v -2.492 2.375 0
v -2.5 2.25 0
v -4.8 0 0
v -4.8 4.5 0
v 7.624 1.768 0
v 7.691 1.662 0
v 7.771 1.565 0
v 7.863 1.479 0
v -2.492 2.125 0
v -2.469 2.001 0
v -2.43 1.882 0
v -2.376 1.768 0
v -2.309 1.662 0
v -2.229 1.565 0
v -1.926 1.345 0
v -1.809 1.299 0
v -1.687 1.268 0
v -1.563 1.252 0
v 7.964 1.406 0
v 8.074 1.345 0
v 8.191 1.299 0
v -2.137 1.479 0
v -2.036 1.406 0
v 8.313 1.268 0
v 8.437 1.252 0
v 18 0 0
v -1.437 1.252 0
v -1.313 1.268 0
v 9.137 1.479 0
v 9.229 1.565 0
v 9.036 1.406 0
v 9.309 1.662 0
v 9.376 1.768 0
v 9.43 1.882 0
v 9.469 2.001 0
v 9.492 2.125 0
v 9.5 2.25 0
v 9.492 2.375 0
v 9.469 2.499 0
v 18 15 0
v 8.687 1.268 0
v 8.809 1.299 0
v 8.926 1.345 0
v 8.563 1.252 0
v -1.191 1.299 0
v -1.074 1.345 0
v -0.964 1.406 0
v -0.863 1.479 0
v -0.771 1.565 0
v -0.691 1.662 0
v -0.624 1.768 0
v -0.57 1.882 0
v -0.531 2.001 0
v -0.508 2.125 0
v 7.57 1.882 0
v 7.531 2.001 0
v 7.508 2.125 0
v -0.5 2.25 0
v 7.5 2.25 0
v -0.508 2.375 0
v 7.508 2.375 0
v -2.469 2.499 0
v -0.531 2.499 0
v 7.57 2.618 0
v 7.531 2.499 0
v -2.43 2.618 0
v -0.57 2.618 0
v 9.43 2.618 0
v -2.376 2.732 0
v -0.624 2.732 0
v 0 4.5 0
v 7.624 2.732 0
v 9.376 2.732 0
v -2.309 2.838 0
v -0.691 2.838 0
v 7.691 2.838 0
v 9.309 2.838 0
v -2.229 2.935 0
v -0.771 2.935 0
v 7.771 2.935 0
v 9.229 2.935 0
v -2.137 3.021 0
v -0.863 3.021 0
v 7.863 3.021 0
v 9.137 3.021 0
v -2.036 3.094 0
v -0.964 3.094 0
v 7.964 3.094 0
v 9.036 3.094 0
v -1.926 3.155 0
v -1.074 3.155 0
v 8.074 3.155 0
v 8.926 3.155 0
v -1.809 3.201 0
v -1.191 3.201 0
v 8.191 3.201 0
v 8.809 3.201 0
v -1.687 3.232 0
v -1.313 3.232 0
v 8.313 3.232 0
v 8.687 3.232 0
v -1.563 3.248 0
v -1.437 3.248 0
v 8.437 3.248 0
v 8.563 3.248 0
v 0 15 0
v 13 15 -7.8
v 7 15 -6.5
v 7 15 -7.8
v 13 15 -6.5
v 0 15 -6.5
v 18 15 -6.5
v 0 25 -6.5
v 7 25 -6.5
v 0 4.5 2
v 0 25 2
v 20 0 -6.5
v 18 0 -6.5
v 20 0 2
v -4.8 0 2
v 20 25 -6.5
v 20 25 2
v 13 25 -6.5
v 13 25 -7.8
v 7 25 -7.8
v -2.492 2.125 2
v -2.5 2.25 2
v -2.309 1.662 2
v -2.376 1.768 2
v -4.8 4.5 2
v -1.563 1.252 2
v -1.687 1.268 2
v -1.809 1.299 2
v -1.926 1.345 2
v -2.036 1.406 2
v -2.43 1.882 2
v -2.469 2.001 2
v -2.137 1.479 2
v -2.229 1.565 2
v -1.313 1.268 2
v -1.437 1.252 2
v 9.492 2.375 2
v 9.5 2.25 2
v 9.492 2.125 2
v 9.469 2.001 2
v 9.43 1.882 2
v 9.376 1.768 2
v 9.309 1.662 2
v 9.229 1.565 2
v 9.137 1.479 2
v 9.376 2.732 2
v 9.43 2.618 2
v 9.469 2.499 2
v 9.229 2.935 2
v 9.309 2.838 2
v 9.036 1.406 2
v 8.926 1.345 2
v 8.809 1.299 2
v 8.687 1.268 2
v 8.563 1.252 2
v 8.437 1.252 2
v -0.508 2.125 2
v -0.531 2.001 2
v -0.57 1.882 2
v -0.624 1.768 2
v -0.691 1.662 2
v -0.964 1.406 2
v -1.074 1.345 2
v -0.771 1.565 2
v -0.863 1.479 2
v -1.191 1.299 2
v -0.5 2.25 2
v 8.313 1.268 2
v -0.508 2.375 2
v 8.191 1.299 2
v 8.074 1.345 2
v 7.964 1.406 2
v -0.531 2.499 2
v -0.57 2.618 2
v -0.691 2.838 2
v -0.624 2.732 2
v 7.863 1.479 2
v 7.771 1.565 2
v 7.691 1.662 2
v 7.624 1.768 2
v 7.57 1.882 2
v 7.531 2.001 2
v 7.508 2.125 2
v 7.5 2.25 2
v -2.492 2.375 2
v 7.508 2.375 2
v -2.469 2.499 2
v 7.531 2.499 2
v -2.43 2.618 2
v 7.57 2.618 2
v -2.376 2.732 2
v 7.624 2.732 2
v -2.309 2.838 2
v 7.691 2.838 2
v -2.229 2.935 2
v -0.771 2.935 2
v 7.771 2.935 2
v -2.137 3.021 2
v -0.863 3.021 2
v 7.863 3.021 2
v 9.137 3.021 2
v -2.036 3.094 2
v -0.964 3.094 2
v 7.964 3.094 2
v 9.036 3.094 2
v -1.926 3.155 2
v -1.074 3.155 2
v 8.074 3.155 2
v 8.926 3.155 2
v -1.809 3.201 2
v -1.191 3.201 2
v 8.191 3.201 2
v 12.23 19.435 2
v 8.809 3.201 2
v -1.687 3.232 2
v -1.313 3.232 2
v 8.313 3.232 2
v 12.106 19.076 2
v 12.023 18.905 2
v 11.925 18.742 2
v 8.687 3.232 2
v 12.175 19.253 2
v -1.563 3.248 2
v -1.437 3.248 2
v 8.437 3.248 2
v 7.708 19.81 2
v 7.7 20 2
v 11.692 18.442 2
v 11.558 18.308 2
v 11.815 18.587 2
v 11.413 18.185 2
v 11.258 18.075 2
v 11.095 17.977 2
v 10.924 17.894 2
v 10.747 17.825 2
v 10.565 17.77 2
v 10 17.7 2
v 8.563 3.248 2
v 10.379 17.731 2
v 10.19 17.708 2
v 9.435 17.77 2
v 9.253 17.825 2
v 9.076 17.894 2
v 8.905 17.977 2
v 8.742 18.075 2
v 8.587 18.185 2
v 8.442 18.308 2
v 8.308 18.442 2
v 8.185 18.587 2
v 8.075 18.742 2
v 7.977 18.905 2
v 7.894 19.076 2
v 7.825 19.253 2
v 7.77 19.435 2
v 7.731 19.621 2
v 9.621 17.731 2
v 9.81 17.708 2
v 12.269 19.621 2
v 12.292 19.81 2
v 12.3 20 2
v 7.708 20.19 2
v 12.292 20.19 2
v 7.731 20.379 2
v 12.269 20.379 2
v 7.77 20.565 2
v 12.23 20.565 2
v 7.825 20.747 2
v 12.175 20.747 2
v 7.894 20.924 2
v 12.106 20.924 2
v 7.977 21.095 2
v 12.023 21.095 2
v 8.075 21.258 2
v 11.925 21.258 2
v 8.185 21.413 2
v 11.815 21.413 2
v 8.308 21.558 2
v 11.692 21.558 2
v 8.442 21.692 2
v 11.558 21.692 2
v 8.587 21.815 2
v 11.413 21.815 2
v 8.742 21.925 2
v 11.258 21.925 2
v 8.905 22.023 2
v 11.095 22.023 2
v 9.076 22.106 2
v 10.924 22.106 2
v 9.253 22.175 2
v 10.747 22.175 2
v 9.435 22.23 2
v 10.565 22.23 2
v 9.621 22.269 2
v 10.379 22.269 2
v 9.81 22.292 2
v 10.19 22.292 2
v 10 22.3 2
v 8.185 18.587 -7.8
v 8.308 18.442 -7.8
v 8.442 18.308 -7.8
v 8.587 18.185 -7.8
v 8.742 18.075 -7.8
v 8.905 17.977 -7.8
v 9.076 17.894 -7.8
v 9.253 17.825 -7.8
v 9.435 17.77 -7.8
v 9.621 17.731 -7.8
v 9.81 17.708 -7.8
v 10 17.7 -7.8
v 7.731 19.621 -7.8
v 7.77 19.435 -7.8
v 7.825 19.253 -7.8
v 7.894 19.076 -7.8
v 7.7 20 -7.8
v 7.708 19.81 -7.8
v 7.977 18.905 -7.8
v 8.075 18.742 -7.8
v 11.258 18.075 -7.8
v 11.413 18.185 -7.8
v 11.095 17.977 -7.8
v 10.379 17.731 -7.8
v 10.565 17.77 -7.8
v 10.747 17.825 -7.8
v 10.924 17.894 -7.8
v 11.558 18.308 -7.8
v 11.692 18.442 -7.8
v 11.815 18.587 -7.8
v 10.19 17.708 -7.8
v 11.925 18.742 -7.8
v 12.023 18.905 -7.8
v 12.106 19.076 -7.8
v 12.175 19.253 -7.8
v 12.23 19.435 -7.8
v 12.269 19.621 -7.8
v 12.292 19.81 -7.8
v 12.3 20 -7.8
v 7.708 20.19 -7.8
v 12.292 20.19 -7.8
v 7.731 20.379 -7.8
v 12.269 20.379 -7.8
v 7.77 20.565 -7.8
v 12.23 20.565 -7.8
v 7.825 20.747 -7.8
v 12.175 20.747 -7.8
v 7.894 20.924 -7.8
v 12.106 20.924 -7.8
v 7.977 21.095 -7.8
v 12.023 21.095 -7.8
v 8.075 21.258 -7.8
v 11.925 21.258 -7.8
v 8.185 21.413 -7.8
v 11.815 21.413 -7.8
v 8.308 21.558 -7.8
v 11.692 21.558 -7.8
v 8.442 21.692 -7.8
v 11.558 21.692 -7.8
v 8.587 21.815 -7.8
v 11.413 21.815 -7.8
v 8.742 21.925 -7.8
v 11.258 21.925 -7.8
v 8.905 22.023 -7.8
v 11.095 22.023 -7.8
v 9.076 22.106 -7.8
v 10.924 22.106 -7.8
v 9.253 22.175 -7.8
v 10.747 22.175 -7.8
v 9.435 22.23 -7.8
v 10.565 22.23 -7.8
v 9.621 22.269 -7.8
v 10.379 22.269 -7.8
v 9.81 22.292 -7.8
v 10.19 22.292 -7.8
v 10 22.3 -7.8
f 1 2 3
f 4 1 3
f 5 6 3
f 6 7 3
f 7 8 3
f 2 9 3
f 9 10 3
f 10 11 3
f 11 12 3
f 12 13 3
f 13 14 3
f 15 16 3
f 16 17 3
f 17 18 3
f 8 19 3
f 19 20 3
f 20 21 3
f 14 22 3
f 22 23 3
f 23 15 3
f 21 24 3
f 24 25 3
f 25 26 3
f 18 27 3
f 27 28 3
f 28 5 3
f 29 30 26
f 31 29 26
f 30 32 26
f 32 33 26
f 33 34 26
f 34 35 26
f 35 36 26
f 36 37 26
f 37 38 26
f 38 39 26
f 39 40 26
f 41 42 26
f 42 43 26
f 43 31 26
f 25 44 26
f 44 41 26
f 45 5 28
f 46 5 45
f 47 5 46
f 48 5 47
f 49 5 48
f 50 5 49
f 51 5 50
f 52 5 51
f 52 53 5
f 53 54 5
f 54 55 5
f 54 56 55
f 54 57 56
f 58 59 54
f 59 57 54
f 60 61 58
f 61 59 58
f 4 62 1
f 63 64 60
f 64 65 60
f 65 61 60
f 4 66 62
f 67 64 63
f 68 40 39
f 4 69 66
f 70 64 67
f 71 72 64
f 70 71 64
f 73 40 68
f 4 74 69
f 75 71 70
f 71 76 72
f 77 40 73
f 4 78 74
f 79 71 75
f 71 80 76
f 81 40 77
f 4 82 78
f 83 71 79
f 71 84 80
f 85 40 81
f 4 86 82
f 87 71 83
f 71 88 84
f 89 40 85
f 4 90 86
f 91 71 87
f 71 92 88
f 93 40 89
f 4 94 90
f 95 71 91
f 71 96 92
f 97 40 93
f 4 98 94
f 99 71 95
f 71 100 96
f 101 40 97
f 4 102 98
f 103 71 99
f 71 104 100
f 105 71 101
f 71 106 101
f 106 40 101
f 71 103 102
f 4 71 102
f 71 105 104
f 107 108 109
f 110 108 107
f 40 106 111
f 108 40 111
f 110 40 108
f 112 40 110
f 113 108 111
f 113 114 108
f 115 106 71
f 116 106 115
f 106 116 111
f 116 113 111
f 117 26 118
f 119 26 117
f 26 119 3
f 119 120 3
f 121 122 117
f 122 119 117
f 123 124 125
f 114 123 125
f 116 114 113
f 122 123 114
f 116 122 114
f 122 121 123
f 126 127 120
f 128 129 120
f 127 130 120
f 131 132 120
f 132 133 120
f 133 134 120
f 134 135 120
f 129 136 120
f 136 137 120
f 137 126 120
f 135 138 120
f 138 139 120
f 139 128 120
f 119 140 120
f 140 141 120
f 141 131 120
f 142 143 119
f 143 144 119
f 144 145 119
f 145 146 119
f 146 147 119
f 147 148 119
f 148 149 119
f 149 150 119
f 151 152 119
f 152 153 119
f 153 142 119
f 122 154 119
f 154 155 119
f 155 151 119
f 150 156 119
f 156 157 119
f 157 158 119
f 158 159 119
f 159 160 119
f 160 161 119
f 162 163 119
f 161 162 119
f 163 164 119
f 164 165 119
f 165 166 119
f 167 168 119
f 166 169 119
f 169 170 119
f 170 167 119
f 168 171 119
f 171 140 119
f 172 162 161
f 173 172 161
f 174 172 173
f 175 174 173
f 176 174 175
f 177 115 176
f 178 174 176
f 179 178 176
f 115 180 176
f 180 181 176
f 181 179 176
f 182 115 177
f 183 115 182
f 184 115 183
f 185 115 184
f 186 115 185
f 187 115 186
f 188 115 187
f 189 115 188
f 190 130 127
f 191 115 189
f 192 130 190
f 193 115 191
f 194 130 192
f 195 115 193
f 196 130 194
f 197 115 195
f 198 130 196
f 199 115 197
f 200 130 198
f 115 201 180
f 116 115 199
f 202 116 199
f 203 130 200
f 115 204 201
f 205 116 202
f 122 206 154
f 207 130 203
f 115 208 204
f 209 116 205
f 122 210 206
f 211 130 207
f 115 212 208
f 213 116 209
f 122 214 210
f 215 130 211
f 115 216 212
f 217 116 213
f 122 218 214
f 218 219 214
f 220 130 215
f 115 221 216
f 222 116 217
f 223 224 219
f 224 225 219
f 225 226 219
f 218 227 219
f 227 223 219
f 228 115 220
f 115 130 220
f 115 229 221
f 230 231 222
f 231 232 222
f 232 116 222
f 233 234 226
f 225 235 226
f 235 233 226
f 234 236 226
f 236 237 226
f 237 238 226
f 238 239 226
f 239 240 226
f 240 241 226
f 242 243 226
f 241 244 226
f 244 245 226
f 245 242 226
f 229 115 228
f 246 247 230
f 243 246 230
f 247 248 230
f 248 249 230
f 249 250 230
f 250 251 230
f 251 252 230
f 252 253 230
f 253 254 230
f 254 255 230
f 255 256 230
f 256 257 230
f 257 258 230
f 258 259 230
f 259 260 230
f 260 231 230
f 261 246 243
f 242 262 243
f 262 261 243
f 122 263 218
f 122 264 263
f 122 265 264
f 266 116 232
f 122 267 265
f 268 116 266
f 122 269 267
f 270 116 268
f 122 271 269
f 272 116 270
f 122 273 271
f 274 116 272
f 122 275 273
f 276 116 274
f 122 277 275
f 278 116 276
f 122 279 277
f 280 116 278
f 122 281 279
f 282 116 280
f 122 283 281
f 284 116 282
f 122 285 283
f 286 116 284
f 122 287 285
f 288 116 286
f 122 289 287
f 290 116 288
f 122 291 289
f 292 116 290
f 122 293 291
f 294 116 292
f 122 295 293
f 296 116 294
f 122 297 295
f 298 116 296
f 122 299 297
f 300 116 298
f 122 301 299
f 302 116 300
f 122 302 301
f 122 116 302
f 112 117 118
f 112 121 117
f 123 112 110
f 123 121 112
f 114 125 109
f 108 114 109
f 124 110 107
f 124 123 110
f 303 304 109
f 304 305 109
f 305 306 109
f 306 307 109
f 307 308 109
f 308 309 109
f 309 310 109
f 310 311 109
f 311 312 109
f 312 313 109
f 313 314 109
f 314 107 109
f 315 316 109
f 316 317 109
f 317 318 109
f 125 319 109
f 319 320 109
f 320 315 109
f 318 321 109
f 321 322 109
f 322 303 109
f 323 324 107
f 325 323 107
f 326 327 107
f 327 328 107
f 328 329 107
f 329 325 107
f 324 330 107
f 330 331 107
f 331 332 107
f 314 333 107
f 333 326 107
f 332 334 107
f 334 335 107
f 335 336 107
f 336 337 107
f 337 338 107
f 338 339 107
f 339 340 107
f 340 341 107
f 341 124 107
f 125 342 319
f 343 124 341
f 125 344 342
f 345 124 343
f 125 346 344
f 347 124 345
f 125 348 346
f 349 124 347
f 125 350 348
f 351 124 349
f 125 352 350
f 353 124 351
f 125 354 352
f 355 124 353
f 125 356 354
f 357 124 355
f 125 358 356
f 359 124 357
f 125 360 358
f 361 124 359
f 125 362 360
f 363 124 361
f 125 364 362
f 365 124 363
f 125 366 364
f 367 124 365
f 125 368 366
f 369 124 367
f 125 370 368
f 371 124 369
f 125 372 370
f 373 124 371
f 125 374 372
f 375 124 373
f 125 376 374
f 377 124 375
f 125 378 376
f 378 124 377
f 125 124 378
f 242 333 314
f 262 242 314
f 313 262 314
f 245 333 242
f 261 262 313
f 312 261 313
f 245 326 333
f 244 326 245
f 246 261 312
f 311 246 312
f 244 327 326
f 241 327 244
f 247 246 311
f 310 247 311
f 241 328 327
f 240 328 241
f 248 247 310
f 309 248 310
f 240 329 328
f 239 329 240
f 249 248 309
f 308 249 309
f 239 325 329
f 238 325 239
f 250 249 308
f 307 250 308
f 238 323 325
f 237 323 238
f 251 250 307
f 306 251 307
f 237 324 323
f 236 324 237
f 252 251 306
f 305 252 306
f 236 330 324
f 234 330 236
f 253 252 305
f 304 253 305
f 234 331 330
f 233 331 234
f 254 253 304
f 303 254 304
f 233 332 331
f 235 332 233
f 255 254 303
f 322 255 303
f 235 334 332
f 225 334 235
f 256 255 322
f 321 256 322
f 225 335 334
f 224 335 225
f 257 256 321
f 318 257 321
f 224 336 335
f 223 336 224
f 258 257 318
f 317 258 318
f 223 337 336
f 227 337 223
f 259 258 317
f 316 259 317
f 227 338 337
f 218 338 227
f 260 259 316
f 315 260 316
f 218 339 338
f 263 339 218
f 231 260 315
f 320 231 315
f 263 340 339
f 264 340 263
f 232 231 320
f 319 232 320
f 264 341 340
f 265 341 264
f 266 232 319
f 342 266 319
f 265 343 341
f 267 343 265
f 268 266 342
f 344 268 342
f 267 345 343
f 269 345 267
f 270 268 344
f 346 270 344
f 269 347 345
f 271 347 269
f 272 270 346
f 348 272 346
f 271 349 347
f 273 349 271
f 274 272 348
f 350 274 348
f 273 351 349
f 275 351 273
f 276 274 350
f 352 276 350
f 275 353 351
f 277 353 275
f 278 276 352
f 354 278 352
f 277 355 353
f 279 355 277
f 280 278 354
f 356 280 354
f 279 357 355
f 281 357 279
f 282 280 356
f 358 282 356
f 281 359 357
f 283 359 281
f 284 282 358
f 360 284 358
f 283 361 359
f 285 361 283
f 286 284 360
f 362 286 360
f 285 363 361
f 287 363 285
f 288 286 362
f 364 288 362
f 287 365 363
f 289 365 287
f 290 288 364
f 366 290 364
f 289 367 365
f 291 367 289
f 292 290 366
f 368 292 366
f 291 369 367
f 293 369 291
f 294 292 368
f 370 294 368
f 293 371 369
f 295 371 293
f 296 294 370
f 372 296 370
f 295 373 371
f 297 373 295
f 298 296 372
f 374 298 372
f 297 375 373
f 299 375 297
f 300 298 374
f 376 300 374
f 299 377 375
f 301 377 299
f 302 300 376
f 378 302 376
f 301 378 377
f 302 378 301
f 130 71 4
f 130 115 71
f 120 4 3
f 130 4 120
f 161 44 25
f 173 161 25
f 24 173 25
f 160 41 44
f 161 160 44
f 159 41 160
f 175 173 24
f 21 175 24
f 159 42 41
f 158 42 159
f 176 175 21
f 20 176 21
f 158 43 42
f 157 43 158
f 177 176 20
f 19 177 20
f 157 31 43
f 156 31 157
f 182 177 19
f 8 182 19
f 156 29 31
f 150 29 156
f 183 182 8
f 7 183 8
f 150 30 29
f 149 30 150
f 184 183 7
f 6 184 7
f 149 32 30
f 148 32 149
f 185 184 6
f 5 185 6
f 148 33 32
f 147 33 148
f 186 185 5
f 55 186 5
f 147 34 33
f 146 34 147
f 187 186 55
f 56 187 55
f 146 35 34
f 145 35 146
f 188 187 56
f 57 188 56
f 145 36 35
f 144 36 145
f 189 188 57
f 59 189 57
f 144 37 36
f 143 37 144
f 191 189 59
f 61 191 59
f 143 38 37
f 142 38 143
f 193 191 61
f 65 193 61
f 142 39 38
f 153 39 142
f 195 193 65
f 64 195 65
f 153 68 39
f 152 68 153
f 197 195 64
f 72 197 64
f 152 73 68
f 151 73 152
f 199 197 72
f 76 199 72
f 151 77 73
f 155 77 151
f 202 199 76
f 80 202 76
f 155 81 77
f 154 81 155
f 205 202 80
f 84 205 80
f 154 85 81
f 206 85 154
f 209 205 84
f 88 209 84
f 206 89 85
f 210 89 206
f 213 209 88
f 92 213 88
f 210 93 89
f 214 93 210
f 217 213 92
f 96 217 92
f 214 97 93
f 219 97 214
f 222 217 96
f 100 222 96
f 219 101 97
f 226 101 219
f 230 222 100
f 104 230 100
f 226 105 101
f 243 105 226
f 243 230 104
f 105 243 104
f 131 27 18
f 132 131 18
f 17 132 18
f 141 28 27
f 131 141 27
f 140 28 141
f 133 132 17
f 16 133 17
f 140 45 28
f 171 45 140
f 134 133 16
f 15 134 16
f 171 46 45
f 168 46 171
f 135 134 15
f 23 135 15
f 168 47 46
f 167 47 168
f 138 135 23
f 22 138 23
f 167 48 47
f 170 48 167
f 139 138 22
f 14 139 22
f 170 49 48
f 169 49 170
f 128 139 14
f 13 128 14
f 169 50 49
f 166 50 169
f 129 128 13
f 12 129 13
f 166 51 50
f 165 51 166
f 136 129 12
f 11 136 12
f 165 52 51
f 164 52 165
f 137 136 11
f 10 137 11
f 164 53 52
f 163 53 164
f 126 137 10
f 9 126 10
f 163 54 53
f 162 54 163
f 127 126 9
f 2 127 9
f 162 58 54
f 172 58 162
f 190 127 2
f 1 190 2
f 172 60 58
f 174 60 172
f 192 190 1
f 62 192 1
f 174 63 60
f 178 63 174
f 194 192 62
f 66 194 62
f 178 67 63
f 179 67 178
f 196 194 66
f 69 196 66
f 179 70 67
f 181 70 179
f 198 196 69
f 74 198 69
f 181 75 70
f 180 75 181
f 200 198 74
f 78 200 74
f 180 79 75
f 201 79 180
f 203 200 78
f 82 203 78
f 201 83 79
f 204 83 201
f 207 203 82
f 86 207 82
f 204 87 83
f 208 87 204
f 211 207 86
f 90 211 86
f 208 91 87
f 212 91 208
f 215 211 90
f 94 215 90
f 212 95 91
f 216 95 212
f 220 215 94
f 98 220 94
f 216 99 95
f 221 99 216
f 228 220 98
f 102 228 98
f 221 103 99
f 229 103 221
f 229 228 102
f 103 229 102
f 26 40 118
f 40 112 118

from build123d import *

# Parameters (mm, degrees)
SKETCH1_W               = 20
SKETCH1_H               = 25
BOSS_EXTRUDE1_DEPTH     = 2
SKETCH4_W               = 20
SKETCH4_H               = 10
BOSS_EXTRUDE3_DEPTH     = 6.5
SKETCH9_W               = 6
SKETCH9_H               = 10
BOSS_EXTRUDE6_DEPTH     = 1.3
CUT_EXTRUDE2_DEPTH      = 34.12476415
CUT_EXTRUDE2_DEPTH_BACK = 34.12476415
SKETCH5_R               = 2.3
SKETCH6_W               = 4.8
SKETCH6_H               = 4.5
BOSS_EXTRUDE4_DEPTH     = 2
SKETCH7_R               = 1
CUT_EXTRUDE3_DEPTH      = 10
SKETCH8_W               = 2
SKETCH8_H               = 15
BOSS_EXTRUDE5_DEPTH     = 6.5


with BuildPart() as part:
    # Sketch1 → Boss-Extrude1 (new body)
    with BuildSketch(Plane.XY):
        with Locations((10, 12.5)):
            Rectangle(SKETCH1_W, SKETCH1_H)
    extrude(amount=BOSS_EXTRUDE1_DEPTH)

    # Sketch4 → Boss-Extrude3 (add)
    with BuildSketch(Plane(origin=(0, 0, 0), x_dir=(-1, 0, 0), z_dir=(0, 0, -1))):
        with Locations((-10, 20)):
            Rectangle(SKETCH4_W, SKETCH4_H)
    extrude(amount=BOSS_EXTRUDE3_DEPTH)

    # Sketch9 → Boss-Extrude6 (add)
    with BuildSketch(Plane(origin=(0, 0, -6.5), x_dir=(-1, 0, 0), z_dir=(0, 0, -1))):
        with Locations((-10, 20)):
            Rectangle(SKETCH9_W, SKETCH9_H)
    extrude(amount=BOSS_EXTRUDE6_DEPTH)

    # Sketch5 → Cut-Extrude2 (cut, two sides: drawn at the far end of the back side and taken through both)
    with BuildSketch(Plane(origin=(0, 0, -6.5), x_dir=(-1, 0, 0), z_dir=(0, 0, -1)).offset(-CUT_EXTRUDE2_DEPTH_BACK)):
        with Locations((-10, 20)):
            Circle(SKETCH5_R)
    extrude(amount=CUT_EXTRUDE2_DEPTH + CUT_EXTRUDE2_DEPTH_BACK, mode=Mode.SUBTRACT)

    # Sketch6 → Boss-Extrude4 (add)
    with BuildSketch(Plane.XY.offset(2)):
        with Locations((-2.4, 2.25)):
            Rectangle(SKETCH6_W, SKETCH6_H)
    extrude(amount=-BOSS_EXTRUDE4_DEPTH)

    # Sketch7 → Cut-Extrude3 (cut)
    with BuildSketch(Plane(origin=(0, 0, 0), x_dir=(-1, 0, 0), z_dir=(0, 0, -1))):
        with Locations((1.5, 2.25)):
            Circle(SKETCH7_R)
        with Locations((-8.5, 2.25)):
            Circle(SKETCH7_R)
    extrude(amount=-CUT_EXTRUDE3_DEPTH, mode=Mode.SUBTRACT)

    # Sketch8 → Boss-Extrude5 (add)
    with BuildSketch(Plane(origin=(0, 0, 0), x_dir=(-1, 0, 0), z_dir=(0, 0, -1))):
        with Locations((-19, 7.5)):
            Rectangle(SKETCH8_W, SKETCH8_H)
    extrude(amount=BOSS_EXTRUDE5_DEPTH)


solid = part.part
